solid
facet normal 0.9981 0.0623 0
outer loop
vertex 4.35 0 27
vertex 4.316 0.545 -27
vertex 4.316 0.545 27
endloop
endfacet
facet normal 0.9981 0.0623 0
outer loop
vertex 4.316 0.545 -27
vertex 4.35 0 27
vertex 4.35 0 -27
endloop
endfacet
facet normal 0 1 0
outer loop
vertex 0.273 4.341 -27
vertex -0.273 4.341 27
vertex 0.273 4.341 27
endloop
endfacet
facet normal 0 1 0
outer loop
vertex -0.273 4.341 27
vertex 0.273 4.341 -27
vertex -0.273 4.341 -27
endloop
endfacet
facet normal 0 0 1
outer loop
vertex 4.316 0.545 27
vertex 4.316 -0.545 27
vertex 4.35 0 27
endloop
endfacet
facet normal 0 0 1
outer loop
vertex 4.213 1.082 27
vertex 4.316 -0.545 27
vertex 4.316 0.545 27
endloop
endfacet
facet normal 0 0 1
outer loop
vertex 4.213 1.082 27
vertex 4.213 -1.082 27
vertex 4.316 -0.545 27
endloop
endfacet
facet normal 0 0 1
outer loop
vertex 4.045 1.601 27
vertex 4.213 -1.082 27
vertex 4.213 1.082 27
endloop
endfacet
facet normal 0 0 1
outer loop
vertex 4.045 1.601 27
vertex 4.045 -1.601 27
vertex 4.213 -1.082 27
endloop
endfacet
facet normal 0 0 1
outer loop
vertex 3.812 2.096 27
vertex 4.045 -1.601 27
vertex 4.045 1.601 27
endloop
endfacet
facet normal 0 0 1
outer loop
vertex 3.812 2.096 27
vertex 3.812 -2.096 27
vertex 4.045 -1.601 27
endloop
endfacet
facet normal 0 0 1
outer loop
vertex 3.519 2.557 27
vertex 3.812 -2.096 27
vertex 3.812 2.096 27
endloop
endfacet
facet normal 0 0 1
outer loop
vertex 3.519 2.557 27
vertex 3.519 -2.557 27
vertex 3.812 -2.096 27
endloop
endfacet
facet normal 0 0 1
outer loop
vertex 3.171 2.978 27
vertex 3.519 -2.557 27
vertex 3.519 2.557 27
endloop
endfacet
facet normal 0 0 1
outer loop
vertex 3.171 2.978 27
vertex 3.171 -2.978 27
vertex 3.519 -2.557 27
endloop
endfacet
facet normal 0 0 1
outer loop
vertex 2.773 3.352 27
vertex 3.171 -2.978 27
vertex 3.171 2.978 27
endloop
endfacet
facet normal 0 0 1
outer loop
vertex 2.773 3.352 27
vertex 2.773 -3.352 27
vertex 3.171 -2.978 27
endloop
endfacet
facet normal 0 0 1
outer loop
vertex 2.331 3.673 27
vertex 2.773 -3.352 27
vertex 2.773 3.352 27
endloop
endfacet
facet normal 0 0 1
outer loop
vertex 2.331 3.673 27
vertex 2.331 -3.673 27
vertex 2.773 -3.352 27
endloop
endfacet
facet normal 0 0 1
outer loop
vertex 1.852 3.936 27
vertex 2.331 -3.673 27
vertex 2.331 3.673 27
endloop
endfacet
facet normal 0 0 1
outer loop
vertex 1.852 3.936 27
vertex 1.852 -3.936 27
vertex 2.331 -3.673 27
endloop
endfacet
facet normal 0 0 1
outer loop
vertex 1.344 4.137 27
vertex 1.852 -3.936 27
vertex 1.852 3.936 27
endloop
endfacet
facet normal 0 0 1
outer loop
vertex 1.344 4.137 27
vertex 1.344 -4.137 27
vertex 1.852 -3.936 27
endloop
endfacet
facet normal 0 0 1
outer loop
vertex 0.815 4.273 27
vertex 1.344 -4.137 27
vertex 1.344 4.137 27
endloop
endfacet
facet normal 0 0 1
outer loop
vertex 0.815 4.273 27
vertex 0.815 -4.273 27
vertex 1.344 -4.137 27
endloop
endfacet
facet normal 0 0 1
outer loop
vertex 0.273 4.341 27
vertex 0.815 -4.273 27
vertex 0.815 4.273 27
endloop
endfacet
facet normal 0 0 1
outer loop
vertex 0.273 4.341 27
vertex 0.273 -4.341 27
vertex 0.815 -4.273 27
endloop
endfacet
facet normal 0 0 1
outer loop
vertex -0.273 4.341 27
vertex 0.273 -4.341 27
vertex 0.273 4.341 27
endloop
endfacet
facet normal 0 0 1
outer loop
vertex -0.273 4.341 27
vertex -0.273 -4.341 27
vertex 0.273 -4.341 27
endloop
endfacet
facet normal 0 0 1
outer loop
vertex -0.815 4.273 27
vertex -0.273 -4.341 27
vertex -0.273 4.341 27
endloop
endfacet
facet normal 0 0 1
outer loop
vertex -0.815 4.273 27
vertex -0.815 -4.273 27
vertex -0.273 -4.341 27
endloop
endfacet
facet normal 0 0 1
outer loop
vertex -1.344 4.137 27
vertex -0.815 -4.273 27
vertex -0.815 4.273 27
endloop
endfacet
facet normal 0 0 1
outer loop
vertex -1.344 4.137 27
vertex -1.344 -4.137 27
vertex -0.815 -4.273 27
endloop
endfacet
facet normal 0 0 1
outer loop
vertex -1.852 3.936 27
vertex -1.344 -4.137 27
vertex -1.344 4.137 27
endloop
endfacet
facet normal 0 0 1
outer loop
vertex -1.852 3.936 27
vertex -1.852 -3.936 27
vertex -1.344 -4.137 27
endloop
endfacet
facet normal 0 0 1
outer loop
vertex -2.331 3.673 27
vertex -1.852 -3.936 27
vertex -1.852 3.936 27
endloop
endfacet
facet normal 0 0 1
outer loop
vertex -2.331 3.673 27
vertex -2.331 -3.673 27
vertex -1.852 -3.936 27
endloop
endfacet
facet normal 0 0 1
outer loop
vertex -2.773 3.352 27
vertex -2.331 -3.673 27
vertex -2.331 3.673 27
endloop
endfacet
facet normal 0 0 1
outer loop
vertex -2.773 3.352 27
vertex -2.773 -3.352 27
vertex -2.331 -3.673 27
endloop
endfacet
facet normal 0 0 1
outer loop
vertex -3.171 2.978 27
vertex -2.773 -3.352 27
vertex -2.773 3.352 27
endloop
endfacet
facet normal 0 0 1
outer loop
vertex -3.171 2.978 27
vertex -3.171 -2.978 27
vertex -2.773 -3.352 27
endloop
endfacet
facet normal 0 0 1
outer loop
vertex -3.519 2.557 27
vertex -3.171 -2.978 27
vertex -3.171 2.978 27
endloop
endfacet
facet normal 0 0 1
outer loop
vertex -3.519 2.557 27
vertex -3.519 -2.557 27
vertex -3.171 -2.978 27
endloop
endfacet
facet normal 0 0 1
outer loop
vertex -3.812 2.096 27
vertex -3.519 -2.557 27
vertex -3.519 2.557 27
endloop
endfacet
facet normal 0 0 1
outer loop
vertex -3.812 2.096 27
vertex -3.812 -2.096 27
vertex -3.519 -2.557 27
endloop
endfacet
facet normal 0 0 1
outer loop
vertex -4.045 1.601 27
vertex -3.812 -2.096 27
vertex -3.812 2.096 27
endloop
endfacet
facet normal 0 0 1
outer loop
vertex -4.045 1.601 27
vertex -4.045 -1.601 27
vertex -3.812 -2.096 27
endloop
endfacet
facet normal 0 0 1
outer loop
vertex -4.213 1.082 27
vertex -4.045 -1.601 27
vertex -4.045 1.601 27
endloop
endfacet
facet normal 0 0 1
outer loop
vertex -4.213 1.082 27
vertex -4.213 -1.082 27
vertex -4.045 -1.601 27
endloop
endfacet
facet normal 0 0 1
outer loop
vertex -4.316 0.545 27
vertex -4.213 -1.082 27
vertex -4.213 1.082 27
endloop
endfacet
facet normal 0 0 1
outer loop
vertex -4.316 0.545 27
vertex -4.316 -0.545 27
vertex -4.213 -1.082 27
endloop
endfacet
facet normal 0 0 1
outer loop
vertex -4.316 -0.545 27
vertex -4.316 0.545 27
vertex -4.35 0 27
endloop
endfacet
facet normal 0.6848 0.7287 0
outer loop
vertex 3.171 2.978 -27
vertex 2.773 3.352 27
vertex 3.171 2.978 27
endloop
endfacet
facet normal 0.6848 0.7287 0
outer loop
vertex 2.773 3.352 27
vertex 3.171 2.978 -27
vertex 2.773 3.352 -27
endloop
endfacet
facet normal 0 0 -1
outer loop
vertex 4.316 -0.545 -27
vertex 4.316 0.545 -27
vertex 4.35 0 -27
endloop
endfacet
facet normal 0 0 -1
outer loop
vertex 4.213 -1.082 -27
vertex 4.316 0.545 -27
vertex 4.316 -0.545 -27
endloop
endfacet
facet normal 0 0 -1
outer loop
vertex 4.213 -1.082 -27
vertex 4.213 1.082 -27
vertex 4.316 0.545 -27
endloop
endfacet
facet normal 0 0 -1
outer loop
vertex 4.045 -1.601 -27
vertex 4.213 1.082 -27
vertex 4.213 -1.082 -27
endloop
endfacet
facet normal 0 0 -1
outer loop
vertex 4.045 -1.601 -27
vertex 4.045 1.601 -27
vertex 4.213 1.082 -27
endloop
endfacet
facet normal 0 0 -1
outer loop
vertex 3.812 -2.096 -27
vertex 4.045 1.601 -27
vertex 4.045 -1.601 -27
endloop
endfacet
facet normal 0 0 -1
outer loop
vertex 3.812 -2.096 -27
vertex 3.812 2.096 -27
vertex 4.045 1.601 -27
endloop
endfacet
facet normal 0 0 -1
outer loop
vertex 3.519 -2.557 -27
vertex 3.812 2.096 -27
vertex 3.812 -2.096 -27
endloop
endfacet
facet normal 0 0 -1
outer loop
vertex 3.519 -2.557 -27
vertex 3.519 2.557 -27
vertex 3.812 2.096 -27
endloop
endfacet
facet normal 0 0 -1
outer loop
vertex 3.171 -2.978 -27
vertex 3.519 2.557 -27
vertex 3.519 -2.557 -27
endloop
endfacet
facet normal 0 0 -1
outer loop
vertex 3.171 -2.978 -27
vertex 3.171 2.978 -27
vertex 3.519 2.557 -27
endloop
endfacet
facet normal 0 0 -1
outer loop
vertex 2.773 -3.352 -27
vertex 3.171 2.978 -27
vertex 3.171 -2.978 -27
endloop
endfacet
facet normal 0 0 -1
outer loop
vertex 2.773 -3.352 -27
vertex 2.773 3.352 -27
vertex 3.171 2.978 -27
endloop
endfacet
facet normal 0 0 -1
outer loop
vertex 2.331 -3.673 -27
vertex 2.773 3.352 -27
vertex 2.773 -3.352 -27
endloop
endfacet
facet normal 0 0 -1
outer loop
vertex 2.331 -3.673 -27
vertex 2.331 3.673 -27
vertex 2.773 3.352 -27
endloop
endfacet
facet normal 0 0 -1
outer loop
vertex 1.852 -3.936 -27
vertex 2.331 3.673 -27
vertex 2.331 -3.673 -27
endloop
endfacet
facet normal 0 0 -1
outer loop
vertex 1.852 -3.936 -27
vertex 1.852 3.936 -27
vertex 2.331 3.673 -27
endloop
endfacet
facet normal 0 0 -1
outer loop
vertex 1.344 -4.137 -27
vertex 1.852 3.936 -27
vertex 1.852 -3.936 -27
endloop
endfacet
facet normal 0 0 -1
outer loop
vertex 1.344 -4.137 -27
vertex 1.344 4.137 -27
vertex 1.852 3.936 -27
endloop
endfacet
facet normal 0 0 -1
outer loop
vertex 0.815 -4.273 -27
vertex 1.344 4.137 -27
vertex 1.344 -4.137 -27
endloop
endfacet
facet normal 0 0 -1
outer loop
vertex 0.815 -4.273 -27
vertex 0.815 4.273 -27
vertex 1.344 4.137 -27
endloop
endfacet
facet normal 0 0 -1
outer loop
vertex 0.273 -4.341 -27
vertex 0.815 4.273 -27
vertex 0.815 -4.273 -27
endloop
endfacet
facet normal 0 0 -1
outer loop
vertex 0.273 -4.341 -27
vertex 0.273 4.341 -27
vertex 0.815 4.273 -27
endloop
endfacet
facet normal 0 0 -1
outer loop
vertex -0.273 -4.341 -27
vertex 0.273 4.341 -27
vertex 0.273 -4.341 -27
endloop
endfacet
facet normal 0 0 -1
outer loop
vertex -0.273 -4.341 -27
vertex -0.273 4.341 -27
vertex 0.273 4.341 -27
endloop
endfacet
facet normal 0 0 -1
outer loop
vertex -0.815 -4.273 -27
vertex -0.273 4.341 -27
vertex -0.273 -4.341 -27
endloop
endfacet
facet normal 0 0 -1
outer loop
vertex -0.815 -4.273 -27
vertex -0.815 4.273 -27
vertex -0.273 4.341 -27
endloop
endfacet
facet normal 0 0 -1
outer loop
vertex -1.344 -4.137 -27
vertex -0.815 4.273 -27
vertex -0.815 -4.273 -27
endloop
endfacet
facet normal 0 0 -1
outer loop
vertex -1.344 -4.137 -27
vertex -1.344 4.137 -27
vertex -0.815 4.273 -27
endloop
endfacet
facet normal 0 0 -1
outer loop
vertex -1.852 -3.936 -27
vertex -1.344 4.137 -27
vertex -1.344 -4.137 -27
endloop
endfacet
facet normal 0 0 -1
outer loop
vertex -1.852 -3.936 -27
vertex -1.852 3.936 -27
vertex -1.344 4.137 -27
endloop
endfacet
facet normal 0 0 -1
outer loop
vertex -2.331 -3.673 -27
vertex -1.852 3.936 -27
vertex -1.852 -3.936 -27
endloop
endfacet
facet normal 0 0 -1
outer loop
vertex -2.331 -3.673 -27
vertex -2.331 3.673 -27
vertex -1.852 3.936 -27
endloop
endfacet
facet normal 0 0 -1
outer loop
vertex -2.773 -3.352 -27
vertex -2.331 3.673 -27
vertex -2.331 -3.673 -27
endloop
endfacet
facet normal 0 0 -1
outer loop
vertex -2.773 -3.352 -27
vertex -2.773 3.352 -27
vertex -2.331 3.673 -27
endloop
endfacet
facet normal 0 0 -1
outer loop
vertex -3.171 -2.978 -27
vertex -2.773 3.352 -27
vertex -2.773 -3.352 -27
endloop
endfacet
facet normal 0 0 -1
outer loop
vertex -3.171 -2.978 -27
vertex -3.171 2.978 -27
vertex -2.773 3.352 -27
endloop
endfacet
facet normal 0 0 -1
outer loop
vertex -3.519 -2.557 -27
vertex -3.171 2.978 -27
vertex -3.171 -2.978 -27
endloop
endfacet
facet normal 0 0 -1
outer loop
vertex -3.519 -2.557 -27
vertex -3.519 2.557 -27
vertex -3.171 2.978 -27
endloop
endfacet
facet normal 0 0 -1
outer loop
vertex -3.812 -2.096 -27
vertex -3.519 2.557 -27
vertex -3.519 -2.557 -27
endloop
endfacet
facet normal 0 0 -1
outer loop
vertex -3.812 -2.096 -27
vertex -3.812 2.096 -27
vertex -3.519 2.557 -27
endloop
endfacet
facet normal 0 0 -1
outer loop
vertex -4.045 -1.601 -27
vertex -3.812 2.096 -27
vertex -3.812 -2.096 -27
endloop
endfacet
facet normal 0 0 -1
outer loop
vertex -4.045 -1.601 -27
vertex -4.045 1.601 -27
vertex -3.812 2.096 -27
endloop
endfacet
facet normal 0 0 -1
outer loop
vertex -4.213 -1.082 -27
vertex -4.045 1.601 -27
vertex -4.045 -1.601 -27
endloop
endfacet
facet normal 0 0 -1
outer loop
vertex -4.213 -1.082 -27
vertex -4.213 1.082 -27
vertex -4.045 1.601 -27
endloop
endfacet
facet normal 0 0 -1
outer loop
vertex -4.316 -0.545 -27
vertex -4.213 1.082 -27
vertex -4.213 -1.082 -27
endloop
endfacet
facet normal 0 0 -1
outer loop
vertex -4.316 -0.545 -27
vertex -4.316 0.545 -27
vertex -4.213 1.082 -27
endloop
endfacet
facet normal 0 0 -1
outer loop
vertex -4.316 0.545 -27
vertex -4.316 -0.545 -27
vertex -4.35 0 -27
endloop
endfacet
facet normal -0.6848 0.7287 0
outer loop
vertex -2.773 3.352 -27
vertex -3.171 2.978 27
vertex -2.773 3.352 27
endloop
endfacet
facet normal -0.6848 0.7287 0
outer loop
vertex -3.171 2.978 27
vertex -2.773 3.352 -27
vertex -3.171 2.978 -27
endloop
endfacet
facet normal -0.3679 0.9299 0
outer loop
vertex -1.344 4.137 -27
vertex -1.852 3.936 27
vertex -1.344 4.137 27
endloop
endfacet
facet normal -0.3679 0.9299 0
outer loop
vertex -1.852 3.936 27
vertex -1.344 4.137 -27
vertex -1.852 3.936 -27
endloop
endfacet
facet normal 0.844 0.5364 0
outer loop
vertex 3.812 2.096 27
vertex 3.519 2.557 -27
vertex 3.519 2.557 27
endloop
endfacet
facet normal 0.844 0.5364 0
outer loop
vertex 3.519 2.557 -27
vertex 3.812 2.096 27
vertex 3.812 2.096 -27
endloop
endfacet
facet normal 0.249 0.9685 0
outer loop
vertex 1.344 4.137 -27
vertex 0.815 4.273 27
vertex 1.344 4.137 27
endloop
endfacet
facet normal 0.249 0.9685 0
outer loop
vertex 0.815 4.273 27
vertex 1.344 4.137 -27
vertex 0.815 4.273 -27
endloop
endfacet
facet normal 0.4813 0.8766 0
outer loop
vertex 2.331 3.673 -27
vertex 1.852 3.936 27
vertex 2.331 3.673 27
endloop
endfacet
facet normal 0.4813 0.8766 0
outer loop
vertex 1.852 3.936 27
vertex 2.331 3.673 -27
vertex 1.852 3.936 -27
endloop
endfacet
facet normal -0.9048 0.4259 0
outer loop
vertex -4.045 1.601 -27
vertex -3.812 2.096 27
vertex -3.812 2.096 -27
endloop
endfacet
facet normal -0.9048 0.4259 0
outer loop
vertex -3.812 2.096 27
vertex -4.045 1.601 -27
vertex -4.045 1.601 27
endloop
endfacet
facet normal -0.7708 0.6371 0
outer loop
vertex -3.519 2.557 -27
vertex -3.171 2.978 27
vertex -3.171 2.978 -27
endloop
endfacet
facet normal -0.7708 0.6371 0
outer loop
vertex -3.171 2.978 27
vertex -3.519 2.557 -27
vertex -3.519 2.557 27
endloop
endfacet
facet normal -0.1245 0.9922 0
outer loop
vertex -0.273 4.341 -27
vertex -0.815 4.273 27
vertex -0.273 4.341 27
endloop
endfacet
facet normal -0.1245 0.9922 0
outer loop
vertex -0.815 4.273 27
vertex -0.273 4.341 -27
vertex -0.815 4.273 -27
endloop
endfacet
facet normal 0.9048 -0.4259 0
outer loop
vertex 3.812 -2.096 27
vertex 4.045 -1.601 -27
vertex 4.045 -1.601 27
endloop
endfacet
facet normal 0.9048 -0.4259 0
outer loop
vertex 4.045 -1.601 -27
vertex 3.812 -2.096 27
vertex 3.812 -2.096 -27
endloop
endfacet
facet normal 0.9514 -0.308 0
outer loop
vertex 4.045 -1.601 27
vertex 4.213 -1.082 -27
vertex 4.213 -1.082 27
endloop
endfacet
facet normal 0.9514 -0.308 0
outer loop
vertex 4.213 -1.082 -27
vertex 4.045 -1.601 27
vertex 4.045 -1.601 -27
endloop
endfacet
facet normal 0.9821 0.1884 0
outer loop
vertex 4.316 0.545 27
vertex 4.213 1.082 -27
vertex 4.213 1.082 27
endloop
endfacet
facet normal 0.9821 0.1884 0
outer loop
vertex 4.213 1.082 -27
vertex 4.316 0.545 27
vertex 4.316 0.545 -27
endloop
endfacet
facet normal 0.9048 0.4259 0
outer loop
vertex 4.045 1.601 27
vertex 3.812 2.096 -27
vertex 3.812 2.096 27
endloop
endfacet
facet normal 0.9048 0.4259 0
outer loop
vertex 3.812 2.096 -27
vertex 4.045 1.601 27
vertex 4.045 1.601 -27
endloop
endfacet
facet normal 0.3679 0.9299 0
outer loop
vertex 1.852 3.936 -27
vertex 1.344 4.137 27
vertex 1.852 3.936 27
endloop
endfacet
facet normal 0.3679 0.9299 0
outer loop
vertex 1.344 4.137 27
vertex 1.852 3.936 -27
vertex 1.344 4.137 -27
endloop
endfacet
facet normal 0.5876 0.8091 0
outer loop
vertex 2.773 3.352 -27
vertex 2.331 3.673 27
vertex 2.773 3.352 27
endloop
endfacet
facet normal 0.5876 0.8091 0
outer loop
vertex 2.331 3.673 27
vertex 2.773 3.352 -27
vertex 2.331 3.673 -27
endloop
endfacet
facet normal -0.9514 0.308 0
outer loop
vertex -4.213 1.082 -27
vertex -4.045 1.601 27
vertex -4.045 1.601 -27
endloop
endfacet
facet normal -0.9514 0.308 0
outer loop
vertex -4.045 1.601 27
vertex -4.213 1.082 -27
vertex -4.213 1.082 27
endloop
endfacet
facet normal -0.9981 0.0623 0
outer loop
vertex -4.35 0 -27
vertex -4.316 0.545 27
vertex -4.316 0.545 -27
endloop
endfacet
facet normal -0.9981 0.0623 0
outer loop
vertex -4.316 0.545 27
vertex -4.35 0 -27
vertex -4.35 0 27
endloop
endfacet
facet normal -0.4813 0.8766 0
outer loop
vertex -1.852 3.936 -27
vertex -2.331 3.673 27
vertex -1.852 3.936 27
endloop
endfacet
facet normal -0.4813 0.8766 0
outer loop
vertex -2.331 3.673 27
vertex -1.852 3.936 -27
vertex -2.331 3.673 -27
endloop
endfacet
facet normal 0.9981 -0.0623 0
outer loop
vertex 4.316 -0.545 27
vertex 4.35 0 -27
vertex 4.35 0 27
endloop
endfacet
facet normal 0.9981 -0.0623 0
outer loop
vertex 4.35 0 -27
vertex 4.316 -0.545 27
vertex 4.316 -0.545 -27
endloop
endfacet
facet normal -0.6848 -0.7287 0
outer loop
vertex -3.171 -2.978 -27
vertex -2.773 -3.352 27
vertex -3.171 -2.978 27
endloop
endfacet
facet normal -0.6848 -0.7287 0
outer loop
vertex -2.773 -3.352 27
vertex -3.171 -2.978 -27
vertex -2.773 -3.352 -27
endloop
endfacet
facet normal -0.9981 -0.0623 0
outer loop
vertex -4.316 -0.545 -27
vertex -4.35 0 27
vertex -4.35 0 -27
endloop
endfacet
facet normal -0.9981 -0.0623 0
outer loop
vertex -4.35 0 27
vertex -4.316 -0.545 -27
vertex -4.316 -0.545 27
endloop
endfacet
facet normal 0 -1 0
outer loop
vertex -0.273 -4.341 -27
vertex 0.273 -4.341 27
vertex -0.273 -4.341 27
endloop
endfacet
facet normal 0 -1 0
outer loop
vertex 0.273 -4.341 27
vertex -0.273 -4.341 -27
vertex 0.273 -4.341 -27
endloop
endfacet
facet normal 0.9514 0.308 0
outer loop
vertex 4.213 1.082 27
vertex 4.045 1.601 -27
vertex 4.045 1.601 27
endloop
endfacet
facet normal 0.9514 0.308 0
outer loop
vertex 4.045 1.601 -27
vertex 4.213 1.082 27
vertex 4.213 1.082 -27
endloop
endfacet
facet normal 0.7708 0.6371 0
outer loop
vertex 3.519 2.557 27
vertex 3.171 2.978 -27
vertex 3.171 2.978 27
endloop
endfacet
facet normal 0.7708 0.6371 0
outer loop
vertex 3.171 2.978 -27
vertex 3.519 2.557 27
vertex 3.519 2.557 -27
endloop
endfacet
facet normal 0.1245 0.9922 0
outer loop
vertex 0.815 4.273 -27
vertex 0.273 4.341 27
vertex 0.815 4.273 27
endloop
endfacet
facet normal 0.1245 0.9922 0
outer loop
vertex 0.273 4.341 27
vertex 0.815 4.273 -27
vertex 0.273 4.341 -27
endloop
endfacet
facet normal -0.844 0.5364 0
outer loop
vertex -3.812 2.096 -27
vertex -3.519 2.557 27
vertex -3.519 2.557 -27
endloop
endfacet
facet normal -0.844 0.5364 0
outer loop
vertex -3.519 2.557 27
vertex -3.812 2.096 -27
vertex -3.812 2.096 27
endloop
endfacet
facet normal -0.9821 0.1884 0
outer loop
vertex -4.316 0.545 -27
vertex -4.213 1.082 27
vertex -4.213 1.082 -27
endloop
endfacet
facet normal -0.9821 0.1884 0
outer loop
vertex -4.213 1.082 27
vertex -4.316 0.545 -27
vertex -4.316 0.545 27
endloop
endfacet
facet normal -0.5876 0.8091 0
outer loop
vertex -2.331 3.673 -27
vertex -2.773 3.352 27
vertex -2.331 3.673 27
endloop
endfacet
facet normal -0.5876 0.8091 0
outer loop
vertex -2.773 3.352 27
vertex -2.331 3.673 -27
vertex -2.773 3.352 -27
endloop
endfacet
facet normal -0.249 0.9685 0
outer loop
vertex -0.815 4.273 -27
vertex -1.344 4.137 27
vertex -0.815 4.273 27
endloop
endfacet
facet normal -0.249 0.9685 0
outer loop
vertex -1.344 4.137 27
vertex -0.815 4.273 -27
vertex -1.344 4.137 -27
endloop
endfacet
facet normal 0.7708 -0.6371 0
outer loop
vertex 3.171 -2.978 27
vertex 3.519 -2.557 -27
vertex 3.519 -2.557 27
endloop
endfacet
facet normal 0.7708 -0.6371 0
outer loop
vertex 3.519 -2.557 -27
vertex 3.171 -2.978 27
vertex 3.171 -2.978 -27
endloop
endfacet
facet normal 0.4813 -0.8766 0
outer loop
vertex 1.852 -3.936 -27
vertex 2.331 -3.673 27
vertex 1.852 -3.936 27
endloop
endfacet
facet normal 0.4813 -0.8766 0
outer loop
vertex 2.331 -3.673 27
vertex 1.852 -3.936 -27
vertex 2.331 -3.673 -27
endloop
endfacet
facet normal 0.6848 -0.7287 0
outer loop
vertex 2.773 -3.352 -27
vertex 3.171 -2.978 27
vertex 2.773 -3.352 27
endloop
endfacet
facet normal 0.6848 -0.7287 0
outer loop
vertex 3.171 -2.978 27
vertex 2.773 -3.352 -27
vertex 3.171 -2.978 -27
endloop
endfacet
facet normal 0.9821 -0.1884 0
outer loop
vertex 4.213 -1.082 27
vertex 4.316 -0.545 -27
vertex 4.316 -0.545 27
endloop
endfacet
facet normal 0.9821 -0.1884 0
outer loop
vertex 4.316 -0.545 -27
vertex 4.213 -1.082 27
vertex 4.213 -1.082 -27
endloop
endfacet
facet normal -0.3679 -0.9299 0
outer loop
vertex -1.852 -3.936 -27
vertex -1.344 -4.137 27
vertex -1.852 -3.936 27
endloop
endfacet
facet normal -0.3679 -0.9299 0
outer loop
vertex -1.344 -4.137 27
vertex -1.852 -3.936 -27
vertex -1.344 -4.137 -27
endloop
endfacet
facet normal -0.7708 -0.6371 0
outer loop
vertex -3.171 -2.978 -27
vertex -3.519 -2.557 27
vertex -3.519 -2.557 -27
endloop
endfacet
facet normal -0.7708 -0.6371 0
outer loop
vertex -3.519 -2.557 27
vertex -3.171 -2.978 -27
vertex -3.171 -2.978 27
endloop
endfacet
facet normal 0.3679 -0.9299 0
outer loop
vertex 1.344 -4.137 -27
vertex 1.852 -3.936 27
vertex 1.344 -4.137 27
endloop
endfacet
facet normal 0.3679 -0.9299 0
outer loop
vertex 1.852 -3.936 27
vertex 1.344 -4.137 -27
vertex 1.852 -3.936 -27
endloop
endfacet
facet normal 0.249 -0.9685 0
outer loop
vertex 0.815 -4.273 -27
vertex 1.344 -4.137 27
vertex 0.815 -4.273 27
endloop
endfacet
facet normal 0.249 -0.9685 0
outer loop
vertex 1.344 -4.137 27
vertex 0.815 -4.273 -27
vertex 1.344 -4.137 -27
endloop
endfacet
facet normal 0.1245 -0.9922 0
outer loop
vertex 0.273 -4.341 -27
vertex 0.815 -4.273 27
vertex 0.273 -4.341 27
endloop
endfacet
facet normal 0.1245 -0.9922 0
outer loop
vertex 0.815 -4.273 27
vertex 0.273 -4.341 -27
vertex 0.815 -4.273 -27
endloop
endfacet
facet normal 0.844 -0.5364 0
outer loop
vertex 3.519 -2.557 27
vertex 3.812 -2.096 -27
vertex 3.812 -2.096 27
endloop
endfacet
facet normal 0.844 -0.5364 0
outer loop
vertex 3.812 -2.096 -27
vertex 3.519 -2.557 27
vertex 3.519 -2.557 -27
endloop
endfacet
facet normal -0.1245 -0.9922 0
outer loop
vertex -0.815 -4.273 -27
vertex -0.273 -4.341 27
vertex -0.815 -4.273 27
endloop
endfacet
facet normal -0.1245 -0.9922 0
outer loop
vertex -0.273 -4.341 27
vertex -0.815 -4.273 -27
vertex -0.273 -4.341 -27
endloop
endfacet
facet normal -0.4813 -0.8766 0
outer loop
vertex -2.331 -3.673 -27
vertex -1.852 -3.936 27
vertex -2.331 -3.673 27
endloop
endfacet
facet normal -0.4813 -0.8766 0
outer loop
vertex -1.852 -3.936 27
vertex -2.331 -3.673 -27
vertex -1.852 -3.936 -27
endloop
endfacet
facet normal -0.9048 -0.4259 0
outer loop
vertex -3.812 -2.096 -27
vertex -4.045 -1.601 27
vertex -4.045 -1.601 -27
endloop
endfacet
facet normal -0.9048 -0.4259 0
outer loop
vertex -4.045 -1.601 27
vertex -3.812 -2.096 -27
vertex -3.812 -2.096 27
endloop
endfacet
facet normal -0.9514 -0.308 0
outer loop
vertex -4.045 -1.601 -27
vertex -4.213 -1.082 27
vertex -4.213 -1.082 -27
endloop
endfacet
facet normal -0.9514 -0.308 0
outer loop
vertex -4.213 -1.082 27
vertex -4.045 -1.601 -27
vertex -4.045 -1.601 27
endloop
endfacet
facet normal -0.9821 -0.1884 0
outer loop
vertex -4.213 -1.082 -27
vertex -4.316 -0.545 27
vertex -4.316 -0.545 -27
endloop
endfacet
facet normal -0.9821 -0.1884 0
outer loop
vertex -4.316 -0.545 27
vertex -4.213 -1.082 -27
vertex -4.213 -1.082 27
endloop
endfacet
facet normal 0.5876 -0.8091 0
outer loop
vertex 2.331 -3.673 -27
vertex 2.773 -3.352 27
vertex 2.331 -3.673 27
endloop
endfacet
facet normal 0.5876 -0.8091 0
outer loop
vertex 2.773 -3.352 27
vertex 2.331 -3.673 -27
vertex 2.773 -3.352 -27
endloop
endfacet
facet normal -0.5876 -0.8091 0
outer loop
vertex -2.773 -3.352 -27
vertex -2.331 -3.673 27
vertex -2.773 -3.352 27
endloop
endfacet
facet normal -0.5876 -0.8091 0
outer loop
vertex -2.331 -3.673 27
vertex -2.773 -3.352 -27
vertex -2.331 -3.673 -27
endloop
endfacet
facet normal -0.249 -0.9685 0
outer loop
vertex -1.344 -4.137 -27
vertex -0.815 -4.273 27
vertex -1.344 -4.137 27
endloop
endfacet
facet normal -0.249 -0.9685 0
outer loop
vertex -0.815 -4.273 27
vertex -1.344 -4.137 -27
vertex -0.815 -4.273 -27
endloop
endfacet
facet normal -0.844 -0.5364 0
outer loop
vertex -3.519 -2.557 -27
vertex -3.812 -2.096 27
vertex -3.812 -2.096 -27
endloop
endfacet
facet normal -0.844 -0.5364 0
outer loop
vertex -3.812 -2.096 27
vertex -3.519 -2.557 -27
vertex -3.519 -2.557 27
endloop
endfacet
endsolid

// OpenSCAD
$fn = 50;


difference() {
	union() {
		translate(v = [0, 0, -27.0000000000]) {
			cylinder(h = 54, r = 4.3500000000);
		}
	}
	union() {
		translate(v = [0, 0, -100.0000000000]) {
			cylinder(h = 200, r = 0);
		}
	}
}
